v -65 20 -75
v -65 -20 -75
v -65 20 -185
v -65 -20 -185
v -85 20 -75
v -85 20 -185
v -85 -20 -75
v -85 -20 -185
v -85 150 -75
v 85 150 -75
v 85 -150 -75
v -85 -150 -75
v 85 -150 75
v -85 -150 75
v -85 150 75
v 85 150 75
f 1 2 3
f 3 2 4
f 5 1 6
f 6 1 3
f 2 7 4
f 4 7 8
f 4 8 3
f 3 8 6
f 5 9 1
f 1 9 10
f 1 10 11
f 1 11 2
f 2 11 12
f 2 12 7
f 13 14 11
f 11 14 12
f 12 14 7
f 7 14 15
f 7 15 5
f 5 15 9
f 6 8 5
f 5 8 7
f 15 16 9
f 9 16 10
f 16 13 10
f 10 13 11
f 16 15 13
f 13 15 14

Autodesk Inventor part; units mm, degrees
ref_plane "YZ Plane" through (0, 0, 0) normal (1, 0, 0) x (0, 1, 0)
ref_plane "XZ Plane" through (0, 0, 0) normal (0, 1, 0) x (-1, 0, 0)
ref_plane "XY Plane" through (0, 0, 0) normal (0, 0, 1) x (1, 0, 0)
sketch "スケッチ1" plane through (0, 0, 0) normal (0, 0, 1) x (1, 0, 0)
  line L0 (-85, -150) -> (85, -150)
  line L1 (85, -150) -> (85, 150)
  line L2 (85, 150) -> (-85, 150)
  line L3 (-85, 150) -> (-85, -150)
  point P0 (0, 0)
  point P1 (85, 0)
  dimension "d0" = 300
  dimension "d1" = 170
  dimension "d3" = 85
  dimension "d4" = 150
extrude "押し出し1" add sketch "スケッチ1" along normal mid plane 150
sketch "スケッチ2" plane through (0, 0, -75) normal (0, 0, -1) x (-1, 0, 0)
  line L0 (85, 150) -> (85, -150) projected
  line L1 (85, -20) -> (65, -20)
  line L2 (65, -20) -> (65, 20)
  line L3 (65, 20) -> (85, 20)
  line L4 (85, 20) -> (85, -20)
  line L5 (-85, -150) -> (85, -150) projected
  point P0 (0, 0)
  dimension "d7" = 40
  dimension "d8" = 20
  dimension "d9" = 130
extrude "押し出し2" add sketch "スケッチ2" along normal blind 110
properties part number "body_luggage"
